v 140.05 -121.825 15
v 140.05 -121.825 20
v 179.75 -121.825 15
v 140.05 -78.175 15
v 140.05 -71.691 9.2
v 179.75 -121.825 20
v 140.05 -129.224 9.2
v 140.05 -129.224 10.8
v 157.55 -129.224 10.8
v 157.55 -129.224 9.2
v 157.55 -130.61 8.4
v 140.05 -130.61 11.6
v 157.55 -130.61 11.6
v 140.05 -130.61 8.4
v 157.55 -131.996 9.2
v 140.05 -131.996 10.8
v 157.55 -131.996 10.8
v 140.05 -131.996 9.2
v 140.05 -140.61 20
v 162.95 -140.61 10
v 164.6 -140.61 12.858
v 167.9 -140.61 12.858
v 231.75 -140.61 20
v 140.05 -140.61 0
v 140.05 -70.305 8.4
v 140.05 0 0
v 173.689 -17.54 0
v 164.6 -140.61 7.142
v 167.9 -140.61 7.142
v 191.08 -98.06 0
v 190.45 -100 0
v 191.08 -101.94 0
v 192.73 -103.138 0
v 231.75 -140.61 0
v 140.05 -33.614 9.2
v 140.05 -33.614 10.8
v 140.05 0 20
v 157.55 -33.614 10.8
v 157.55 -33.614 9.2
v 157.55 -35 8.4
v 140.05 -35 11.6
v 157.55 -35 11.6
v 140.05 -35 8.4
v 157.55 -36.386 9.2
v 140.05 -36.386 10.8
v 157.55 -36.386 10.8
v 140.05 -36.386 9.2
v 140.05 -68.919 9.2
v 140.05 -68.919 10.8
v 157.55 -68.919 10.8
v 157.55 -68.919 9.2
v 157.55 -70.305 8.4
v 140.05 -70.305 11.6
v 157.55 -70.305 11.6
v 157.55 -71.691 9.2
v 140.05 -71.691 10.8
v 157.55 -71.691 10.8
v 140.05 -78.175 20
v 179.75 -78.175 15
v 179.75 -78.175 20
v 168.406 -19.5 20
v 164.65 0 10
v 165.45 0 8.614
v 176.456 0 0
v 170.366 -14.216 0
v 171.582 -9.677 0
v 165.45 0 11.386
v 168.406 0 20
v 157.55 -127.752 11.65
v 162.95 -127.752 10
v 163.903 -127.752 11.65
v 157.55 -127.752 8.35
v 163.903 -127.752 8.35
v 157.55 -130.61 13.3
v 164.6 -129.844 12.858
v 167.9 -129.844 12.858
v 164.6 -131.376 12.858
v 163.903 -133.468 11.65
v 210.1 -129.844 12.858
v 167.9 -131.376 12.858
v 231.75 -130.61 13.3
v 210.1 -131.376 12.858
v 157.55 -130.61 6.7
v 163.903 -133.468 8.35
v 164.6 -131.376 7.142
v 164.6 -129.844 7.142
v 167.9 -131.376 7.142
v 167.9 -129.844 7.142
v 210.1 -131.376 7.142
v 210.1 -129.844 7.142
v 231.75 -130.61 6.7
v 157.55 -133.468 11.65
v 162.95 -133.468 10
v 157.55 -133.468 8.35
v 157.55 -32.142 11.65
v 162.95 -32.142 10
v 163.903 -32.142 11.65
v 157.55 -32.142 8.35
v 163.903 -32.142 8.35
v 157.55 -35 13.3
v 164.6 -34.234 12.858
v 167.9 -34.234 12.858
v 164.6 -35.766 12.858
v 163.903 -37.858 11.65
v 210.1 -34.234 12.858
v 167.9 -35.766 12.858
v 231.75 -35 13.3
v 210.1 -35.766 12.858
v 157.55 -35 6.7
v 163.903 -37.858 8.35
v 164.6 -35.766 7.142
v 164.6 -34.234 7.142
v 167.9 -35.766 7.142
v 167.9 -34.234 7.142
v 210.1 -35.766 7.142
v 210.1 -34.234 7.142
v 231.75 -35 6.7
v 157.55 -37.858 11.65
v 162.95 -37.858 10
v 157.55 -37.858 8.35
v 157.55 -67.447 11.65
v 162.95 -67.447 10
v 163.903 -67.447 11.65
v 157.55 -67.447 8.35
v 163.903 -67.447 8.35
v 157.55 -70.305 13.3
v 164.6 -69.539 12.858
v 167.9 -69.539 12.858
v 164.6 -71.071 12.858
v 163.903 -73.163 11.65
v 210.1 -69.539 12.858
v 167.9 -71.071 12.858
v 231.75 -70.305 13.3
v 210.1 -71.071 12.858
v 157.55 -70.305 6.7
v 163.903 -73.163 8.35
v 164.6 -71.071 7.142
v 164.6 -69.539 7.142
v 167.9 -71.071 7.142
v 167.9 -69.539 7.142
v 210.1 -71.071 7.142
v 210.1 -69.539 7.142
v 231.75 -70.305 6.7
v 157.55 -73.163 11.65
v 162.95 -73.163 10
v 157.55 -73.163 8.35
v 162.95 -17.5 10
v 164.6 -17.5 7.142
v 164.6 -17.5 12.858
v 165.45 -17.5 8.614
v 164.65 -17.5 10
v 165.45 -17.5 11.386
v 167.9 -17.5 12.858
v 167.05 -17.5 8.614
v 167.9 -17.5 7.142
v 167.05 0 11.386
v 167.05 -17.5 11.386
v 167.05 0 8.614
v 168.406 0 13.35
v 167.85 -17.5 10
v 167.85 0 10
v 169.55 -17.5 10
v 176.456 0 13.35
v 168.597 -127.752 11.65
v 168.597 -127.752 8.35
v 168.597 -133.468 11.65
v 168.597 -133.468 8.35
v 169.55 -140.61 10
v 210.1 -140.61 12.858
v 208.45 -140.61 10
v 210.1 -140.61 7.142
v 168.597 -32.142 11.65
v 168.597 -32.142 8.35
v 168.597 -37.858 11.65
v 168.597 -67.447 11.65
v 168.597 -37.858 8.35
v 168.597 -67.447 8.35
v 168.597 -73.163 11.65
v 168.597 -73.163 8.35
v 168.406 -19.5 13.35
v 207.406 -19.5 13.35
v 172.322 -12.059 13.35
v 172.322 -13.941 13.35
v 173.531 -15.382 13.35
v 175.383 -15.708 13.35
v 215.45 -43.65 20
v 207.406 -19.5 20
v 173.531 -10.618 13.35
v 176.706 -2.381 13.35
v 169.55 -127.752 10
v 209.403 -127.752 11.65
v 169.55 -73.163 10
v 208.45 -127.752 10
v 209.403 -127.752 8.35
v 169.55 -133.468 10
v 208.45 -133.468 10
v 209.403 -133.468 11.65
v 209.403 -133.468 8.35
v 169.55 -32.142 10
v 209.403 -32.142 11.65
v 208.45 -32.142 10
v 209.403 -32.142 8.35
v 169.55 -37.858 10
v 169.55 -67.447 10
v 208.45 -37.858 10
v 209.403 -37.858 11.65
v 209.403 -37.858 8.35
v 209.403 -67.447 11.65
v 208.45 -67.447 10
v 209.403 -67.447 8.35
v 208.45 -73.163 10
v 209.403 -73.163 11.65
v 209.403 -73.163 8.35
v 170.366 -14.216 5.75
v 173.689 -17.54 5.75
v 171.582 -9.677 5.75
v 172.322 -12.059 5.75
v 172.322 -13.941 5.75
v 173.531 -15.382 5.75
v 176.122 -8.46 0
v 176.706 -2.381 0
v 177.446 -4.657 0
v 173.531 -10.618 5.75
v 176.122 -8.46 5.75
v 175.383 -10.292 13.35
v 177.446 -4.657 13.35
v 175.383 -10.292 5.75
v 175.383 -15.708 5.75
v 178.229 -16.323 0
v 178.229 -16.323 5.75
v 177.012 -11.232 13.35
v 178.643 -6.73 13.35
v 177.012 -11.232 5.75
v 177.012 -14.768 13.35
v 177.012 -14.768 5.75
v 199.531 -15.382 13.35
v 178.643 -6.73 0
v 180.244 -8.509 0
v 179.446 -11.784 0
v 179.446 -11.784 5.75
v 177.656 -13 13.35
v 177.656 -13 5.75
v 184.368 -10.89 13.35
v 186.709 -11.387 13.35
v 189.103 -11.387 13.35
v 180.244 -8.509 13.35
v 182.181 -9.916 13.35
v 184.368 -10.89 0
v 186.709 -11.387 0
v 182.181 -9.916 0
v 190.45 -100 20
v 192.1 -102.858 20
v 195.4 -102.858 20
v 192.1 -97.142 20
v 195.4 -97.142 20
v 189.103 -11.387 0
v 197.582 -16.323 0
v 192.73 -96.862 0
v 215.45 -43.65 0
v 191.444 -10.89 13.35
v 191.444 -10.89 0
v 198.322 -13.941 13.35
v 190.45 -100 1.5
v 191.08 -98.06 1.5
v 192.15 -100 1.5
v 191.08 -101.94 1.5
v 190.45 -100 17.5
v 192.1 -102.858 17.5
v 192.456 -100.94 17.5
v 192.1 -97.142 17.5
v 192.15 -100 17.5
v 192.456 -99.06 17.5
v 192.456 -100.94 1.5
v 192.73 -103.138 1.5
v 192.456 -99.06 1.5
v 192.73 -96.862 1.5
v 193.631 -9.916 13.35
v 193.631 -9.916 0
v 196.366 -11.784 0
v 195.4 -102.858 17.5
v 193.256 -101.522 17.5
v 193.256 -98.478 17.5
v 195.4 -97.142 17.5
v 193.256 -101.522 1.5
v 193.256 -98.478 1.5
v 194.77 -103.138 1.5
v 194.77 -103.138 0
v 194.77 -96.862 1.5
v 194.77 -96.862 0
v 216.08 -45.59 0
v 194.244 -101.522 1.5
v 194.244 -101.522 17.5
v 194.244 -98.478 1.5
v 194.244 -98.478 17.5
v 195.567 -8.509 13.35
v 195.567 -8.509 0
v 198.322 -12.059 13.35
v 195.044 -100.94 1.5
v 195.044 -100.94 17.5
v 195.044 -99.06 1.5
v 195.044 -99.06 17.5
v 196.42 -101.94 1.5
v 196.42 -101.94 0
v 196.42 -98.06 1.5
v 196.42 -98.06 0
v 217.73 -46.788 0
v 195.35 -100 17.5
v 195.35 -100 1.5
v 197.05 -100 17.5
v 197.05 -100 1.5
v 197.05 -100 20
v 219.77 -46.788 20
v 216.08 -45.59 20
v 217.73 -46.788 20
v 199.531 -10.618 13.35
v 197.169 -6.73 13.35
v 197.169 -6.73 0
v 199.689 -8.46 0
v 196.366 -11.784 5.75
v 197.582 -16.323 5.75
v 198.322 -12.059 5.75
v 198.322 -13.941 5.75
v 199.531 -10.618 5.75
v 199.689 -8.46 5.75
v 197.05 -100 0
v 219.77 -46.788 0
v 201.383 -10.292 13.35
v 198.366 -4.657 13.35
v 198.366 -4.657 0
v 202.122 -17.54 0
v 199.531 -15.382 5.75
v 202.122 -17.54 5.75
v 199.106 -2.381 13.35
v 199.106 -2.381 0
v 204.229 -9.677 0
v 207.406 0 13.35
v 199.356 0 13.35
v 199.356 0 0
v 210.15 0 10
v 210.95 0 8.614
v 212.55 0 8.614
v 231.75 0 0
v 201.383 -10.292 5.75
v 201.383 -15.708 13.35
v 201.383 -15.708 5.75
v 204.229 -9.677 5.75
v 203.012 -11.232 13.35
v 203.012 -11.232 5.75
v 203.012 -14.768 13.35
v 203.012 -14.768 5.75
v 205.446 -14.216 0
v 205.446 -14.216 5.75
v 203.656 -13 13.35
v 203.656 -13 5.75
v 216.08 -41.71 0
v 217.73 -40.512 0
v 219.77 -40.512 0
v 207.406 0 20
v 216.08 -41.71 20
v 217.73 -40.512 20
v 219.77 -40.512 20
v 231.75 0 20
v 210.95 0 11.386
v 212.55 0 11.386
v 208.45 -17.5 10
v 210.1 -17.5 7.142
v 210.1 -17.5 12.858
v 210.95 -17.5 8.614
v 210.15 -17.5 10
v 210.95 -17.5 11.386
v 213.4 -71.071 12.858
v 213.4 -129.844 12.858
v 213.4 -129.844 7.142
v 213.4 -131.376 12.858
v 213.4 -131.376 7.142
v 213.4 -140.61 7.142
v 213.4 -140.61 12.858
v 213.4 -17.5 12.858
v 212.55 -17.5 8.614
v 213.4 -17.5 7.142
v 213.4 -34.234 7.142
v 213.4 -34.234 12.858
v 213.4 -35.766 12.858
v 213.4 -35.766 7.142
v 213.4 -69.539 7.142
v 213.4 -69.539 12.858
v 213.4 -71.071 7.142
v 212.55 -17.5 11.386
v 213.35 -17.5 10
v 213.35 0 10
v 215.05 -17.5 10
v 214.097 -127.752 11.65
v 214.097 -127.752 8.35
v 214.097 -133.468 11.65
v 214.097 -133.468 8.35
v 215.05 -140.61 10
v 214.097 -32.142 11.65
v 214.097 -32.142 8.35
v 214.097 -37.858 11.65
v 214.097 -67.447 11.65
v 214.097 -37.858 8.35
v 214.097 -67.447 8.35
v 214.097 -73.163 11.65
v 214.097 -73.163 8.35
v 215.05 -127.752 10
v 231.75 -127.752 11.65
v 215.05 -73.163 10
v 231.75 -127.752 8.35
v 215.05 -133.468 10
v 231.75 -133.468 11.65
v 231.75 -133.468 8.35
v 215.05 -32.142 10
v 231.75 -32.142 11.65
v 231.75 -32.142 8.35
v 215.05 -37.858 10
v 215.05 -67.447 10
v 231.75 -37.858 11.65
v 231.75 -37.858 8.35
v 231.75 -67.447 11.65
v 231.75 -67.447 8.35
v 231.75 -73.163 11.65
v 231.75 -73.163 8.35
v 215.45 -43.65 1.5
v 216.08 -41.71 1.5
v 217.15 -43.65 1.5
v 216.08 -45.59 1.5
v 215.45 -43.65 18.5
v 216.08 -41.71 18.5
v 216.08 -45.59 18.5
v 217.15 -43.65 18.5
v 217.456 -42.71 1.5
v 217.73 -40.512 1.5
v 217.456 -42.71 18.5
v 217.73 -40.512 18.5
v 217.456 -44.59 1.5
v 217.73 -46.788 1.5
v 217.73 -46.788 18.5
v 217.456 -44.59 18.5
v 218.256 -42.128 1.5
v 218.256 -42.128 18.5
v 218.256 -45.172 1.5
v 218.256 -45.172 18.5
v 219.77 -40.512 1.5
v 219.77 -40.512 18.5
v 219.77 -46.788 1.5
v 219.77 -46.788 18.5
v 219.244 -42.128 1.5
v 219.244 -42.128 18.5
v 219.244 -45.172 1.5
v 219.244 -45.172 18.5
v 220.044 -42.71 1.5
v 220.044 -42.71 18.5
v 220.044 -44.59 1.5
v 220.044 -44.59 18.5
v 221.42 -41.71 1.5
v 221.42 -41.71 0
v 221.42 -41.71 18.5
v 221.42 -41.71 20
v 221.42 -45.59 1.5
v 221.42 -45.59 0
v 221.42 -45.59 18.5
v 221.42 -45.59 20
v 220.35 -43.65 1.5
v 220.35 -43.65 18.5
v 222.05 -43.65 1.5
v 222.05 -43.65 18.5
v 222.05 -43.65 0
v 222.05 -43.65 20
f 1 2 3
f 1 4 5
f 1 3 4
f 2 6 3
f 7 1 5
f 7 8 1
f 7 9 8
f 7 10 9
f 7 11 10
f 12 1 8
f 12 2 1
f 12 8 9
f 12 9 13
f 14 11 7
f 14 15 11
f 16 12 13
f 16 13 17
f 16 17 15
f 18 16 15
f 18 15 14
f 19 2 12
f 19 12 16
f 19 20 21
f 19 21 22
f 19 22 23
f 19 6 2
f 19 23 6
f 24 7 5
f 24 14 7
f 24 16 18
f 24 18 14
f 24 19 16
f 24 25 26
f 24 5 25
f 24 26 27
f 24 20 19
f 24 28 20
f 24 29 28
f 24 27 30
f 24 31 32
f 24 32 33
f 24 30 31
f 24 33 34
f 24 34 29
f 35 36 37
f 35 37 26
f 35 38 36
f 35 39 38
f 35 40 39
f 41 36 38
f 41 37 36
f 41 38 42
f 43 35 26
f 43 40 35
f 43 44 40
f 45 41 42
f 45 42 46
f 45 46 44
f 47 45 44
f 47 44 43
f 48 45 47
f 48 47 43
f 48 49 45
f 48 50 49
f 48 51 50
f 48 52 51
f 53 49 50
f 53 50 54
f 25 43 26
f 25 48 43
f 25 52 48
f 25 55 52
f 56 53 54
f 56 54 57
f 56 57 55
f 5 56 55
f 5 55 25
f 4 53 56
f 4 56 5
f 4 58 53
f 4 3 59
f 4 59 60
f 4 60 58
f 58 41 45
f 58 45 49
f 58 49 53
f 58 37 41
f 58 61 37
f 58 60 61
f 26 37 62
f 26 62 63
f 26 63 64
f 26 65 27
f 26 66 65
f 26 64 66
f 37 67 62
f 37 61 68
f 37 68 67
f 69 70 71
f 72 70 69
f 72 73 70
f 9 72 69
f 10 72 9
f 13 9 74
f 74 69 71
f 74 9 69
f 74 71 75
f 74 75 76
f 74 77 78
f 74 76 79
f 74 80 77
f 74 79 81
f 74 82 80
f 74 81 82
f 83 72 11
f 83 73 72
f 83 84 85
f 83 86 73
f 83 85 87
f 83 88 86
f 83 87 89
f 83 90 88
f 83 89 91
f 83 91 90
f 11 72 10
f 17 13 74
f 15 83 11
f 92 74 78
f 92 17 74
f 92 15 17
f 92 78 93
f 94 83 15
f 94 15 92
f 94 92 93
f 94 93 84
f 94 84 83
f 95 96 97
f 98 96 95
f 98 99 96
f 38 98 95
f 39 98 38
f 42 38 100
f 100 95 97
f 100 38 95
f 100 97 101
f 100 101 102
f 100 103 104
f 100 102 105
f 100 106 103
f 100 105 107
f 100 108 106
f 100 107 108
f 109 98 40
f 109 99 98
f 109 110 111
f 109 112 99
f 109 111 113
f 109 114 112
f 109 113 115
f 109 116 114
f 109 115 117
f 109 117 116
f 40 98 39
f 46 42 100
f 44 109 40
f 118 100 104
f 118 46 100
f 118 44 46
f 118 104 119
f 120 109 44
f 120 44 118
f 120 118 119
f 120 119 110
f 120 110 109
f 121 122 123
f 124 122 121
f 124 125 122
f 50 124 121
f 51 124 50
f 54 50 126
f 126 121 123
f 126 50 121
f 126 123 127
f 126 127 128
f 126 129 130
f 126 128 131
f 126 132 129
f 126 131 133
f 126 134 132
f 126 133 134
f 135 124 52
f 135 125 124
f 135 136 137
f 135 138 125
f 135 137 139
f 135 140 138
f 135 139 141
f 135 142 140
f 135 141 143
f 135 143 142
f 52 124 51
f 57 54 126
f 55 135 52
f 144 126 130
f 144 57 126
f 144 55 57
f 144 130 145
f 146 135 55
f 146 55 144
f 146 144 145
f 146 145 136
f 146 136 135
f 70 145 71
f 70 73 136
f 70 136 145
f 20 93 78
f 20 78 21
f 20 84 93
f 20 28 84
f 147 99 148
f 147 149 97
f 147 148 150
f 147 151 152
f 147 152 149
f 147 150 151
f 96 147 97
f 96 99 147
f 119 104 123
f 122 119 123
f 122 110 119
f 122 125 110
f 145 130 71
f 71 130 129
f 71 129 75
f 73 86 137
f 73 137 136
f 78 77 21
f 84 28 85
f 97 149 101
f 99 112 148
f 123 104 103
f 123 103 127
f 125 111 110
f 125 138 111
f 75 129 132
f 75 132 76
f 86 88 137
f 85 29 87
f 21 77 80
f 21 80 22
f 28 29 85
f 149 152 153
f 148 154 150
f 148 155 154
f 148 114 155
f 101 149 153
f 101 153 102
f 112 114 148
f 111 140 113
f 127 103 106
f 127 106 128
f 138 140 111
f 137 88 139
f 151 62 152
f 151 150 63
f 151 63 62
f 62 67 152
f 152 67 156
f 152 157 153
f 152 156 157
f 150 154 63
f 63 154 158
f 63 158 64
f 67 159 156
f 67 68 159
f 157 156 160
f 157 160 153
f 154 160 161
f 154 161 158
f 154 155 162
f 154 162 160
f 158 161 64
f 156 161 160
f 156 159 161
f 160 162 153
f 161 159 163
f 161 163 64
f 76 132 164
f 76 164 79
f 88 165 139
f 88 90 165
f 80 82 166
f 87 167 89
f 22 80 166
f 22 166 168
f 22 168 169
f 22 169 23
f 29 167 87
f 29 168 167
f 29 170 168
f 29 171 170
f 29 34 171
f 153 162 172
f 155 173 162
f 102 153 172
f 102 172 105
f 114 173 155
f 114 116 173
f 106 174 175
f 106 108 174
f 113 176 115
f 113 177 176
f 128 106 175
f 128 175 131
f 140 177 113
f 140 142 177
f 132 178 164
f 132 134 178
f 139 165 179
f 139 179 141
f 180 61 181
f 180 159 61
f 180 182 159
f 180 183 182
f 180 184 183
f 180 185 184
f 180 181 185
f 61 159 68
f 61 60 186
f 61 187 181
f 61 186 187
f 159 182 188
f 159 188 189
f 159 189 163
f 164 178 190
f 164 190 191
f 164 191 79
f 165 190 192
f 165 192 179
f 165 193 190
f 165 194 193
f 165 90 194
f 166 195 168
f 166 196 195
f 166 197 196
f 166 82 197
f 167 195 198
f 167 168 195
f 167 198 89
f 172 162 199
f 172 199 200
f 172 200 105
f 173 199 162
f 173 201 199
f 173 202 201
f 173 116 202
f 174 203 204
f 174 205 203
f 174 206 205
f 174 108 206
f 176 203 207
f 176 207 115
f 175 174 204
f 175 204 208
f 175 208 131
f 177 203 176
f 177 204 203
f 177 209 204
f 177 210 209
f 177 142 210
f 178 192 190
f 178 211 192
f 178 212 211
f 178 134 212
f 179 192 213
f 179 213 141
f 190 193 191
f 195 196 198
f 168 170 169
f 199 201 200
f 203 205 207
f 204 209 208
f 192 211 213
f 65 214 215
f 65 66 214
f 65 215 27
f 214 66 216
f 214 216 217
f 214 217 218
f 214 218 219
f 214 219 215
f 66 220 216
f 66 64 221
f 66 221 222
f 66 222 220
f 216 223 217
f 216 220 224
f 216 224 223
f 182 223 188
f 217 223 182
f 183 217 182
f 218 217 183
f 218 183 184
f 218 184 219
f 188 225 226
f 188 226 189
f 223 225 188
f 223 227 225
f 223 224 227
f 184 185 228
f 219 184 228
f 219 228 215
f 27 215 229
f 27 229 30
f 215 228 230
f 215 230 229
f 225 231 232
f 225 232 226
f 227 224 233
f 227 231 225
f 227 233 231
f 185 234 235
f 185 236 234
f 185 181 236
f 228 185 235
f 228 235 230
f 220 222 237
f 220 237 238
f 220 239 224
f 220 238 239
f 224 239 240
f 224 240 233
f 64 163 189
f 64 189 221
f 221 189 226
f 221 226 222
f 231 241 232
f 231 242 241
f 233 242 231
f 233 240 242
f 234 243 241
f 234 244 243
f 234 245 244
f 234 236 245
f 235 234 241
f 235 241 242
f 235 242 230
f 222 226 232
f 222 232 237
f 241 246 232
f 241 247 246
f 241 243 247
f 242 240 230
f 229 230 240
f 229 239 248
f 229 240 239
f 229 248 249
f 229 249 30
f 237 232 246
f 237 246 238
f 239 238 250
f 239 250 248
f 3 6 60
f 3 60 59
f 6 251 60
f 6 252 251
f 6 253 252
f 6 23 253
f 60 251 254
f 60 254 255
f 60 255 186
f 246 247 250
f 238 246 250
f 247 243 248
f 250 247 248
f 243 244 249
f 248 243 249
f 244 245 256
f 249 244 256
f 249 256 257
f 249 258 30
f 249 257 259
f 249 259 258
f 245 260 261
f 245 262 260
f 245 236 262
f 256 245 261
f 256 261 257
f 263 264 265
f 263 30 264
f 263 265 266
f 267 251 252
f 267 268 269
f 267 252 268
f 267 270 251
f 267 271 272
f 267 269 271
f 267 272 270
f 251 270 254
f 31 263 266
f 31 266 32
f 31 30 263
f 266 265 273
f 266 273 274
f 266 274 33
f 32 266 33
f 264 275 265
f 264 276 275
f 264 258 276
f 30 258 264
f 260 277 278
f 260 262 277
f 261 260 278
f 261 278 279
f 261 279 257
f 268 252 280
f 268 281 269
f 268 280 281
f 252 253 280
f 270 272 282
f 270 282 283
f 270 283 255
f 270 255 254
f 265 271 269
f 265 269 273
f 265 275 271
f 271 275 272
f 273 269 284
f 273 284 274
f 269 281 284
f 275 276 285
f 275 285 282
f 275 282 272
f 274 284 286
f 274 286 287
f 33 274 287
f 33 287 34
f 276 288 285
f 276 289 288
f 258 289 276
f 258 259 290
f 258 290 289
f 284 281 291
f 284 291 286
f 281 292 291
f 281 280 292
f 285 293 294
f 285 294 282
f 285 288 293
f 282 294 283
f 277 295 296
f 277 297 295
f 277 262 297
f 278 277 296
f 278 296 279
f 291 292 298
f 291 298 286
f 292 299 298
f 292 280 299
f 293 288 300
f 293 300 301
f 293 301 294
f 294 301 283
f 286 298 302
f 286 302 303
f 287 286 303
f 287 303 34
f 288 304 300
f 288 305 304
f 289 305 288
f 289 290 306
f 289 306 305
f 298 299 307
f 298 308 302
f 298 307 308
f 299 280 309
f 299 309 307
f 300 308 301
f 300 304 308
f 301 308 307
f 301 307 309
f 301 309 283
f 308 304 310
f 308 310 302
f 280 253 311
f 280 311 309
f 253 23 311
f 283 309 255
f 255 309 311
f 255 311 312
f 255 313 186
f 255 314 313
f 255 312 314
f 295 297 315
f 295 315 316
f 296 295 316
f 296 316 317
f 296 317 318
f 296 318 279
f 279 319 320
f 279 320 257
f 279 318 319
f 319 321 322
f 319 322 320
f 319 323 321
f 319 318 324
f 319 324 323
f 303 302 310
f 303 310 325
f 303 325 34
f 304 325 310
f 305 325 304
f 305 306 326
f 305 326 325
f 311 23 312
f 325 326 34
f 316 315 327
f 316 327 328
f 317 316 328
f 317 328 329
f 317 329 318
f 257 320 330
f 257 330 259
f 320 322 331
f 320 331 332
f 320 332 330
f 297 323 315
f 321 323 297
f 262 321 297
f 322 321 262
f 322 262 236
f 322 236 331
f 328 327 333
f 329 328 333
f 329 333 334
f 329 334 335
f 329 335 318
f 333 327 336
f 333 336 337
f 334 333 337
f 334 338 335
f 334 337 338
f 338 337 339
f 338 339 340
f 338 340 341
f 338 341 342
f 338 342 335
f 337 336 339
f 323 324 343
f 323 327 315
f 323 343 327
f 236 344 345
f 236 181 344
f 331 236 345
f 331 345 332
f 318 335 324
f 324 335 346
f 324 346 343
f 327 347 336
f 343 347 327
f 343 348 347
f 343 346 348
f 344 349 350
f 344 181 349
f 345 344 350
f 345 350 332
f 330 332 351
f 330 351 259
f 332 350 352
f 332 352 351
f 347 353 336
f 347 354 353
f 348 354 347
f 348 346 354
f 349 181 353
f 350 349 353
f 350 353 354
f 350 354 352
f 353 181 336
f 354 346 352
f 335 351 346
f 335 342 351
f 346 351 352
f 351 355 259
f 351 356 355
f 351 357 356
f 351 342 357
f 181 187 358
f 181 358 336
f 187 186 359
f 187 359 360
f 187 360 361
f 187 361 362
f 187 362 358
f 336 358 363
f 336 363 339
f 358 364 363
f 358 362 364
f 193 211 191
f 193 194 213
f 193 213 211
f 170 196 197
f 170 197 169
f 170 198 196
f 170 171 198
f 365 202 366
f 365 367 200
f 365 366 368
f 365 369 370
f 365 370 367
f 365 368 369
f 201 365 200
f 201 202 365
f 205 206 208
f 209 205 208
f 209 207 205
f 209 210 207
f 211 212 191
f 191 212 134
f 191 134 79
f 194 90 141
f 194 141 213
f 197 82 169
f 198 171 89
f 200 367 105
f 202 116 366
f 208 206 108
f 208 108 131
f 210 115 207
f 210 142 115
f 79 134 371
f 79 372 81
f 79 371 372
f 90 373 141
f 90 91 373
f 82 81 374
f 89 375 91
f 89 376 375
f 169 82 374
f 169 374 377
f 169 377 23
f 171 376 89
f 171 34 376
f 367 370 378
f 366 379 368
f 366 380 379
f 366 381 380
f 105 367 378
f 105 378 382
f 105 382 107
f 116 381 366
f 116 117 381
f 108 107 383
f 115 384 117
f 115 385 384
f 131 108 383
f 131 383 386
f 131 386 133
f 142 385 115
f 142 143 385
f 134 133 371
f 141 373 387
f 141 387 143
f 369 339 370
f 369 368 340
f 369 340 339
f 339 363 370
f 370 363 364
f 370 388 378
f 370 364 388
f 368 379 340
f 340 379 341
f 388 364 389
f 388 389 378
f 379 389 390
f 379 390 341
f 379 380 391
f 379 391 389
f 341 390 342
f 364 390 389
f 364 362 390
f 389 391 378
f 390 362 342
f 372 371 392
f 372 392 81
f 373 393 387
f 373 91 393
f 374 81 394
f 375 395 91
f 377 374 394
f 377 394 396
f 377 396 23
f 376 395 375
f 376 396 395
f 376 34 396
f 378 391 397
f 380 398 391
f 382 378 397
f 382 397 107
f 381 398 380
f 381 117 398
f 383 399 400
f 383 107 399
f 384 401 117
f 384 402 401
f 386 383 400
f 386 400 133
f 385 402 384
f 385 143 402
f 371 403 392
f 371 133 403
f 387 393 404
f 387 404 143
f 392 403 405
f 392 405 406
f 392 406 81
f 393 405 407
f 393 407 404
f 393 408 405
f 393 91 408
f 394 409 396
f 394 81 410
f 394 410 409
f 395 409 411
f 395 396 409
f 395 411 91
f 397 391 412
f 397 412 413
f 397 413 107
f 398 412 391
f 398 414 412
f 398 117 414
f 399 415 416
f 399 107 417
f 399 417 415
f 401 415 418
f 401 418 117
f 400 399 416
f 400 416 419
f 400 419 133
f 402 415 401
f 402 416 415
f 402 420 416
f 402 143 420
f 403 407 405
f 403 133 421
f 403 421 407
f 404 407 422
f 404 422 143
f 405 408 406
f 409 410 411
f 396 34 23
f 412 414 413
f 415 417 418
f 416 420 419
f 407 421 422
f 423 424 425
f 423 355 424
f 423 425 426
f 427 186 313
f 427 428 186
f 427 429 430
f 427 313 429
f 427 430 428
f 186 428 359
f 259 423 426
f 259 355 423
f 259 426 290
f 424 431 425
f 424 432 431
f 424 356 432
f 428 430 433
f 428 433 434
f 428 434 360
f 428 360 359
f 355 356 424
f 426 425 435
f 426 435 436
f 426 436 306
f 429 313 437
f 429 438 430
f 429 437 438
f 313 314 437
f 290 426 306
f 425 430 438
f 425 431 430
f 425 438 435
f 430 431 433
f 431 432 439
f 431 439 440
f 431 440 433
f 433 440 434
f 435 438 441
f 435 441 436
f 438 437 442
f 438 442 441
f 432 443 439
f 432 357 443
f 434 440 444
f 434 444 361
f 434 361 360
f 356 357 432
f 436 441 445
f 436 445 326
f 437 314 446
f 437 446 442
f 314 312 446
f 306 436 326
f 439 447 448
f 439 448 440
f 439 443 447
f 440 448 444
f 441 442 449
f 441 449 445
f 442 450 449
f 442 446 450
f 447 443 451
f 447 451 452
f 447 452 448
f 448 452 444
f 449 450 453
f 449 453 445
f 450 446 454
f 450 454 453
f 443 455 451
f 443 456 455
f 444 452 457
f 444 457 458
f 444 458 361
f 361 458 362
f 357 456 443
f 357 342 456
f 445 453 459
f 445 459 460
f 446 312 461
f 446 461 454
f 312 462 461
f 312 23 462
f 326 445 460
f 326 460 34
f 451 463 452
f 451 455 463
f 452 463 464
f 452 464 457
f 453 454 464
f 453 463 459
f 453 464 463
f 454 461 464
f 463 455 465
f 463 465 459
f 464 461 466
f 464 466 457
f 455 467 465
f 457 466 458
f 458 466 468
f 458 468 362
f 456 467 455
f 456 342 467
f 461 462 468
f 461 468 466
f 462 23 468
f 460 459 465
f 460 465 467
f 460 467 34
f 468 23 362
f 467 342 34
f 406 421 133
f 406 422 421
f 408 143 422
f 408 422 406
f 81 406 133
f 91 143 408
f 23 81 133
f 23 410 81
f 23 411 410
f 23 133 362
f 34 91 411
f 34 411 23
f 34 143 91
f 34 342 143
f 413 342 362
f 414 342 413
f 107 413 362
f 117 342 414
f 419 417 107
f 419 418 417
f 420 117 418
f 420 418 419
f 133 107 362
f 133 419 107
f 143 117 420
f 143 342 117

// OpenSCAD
// file: ../888_1018.scad
include <../Parameters.scad>
draft = true;

accumulator_plate_thickness = 20;
accumulator_plate_length = width_of_accumulator + accumulator_holder_width*3;
accumulator_plate_accumulator_axis_offset = 100; // how far from autogyro center pipe center of battery is.
accumulator_plate_move = -25; // posuv akumulatoru dozadu
accumulator_plate_width = accumulator_plate_accumulator_axis_offset + depth_of_accumulator;
accumulator_plate_bearing_sink = 6.4; // Jak moc bude zapuštěno ložisko pro připevnění na střechu auta.
//  cover_pilon_position
module 888_1018(draft){
  posun = move_of_accumulator + accumulator_holder_width/2 + accumulator_holder_thickness/2 + height_666_1026 + global_clearance/2;

rotate([0, 180, 180])
  translate([posun, 0, 0])
    difference(){

      hull(){
        translate([-accumulator_plate_length/2, -accumulator_plate_width, 0])
            cube([accumulator_plate_length, accumulator_plate_width, accumulator_plate_thickness]);
        translate([-accumulator_plate_length/2 + accumulator_plate_move, -accumulator_plate_width, 0])
            cube([accumulator_plate_length, accumulator_plate_width, accumulator_plate_thickness]);
      }

      #union (){
      //šrouby pro připevnění k letadlu
          translate([-width_of_accumulator/2 - accumulator_holder_width/2 - accumulator_holder_thickness/2, -height_of_accumulator, 0])
              cylinder(h = 100, r = M3_screw_diameter/2, $fn = draft ? 10 : 20, center = true);

          translate([width_of_accumulator/2 + accumulator_holder_width/2 + accumulator_holder_thickness/2, -height_of_accumulator, 0])
              cylinder(h = 100, r = M3_screw_diameter/2, $fn = draft ? 10 : 20, center = true);

      //Zapuštění hlav šroubů pro připevnění k letadlu
          translate([-width_of_accumulator/2 - accumulator_holder_width/2 - accumulator_holder_thickness/2, -height_of_accumulator, accumulator_plate_thickness])
              cylinder(h = M3_screw_head_height, d = M3_nut_diameter, $fn = draft ? 10 : 20, center = true);

          translate([width_of_accumulator/2 + accumulator_holder_width/2 + accumulator_holder_thickness/2, -height_of_accumulator, accumulator_plate_thickness])
              cylinder(h = M3_screw_head_height, d = M3_nut_diameter, $fn = draft ? 10 : 20, center = true);

      // odecteni kostky, v miste, kde je pripevnene kolecko
          translate([height_666_1026 - move_of_accumulator - width_of_accumulator/2 - 5, -5 - height_666_1004/2, - hull_y_size/2])
                 cube([coupling_width_666_1004 + 10, height_666_1004 + 10, hull_y_size]);
      }

      translate([accumulator_plate_move, 0, 0])
      union (){
        //akumulátor
          translate([-width_of_accumulator/2, -accumulator_plate_accumulator_axis_offset-height_of_accumulator/2, accumulator_plate_thickness - sink_of_accumulator])
              cube([width_of_accumulator, height_of_accumulator, depth_of_accumulator]);

        //šrouby pro připevnění akumulátorů
          translate([width_of_accumulator/2 + accumulator_holder_width/2 + accumulator_holder_thickness/2, -accumulator_plate_accumulator_axis_offset, 0])
              cylinder(h = 100, r = M3_screw_diameter/2, $fn = draft ? 10 : 20, center = true);

          translate([- width_of_accumulator/2 - accumulator_holder_width/2 - accumulator_holder_thickness/2, -accumulator_plate_accumulator_axis_offset, 0])
              cylinder(h = 100, r = M3_screw_diameter/2, $fn = draft ? 10 : 20, center = true);


          //díry pro zapuštění hlaviček šroubů
          translate([width_of_accumulator/2 + accumulator_holder_width/2 + accumulator_holder_thickness/2 - accumulator_plate_move, -height_of_accumulator, 0])
              cylinder(h = M3_screw_head_height, d = M3_nut_diameter, $fn = draft ? 10 : 20, center = true);

          translate([-width_of_accumulator/2 - accumulator_holder_width/2 - accumulator_holder_thickness/2 - accumulator_plate_move, -height_of_accumulator, 0])
              cylinder(h = M3_screw_head_height, d = M3_nut_diameter, $fn = draft ? 10 : 20, center = true);

          translate([width_of_accumulator/2 + accumulator_holder_width/2 + accumulator_holder_thickness/2, -accumulator_plate_accumulator_axis_offset, 0])
              cylinder(h = M3_screw_head_height, d = M3_nut_diameter, $fn = draft ? 10 : 20, center = true);

          translate([-width_of_accumulator/2 - accumulator_holder_width/2 - accumulator_holder_thickness/2, -accumulator_plate_accumulator_axis_offset, 0])
              cylinder(h = M3_screw_head_height, d = M3_nut_diameter, $fn = draft ? 10 : 20, center = true);

      // díry pro matky pro sroub drzici obruce pres baterie..
          translate([width_of_accumulator/2 + accumulator_holder_width/2 + accumulator_holder_thickness/2, -accumulator_plate_accumulator_axis_offset, accumulator_plate_thickness])
              cylinder(h = 5, d = M3_nut_diameter, $fn = 6, center = true);

          translate([-width_of_accumulator/2 - accumulator_holder_width/2 - accumulator_holder_thickness/2, -accumulator_plate_accumulator_axis_offset, accumulator_plate_thickness])
              cylinder(h = 5, d = M3_nut_diameter, $fn = 6, center = true);


        }

        // Srouby pro sesroubovani skrz....

        for (i=[accumulator_plate_length/2 - 20, accumulator_plate_length/7, -accumulator_plate_length/6, - accumulator_plate_length/2 + accumulator_plate_move + 10]) {
          translate([i, 0, accumulator_plate_thickness/2])
            union(){
              rotate([90,0,0])
                cylinder(d= M3_screw_diameter, h= 200);

            translate([0, -35/2, 0])
              rotate([90,0,0])
                cylinder(d= M3_nut_diameter, h= 200, $fn= 6);
            }
        }

        for (i=[-35, -accumulator_plate_width/2, -accumulator_plate_width+10]) {
          translate([0, i, accumulator_plate_thickness/2])
            union(){
              translate([-150, 0, 0])
                rotate([0,90,0])
                  cylinder(d= M3_screw_diameter, h= 300);

              translate([35/2, 0, 0])
                rotate([0,90,0])
                  cylinder(d= M3_nut_diameter, h= 200, $fn= 6);

              translate([-35/2 - 200, 0, 0])
                rotate([0,90,0])
                  cylinder(d= M3_nut_diameter, h= 200, $fn= 6);
            }
        }


    // pro přidělání příruby ložiska
    translate([-posun+center_of_gravity_position[0],center_of_gravity_position[1],-global_clearance/2]){
      cylinder(d = bearing_efsm_10_db+1, h=accumulator_plate_thickness + global_clearance);

      translate([- bearing_efsm_10_h / 2, - bearing_efsm_10_h / 2, accumulator_plate_thickness-accumulator_plate_bearing_sink])
        cube(bearing_efsm_10_h);

      for (i=[[1, 1], [-1, 1], [1, -1], [-1, -1]]) {
        translate([i[0]*bearing_efsm_10_m/2, i[1]*bearing_efsm_10_m/2, 0]){
          cylinder(d = bearing_efsm_10_n, h=accumulator_plate_thickness + global_clearance);
          rotate([0,0,-i[0]*15])
            cylinder(d = M5_nut_diameter, h= M5_head_height+1, $fn=6);
        }
      }
    }

    }
}


888_1018(draft);
mirror([0,1,0])
    888_1018(draft);
// main file
include <../../Parameters.scad>
use <../888_1018.scad>

draft = false;

posuv = move_of_accumulator + accumulator_holder_width/2 + accumulator_holder_thickness/2 + height_666_1026 + global_clearance/2;
difference(){
  rotate([180, 0, 0])
    888_1018(1, draft);
  translate([-500+posuv, -500+ global_clearance, -global_clearance])
    cube(500);
}
